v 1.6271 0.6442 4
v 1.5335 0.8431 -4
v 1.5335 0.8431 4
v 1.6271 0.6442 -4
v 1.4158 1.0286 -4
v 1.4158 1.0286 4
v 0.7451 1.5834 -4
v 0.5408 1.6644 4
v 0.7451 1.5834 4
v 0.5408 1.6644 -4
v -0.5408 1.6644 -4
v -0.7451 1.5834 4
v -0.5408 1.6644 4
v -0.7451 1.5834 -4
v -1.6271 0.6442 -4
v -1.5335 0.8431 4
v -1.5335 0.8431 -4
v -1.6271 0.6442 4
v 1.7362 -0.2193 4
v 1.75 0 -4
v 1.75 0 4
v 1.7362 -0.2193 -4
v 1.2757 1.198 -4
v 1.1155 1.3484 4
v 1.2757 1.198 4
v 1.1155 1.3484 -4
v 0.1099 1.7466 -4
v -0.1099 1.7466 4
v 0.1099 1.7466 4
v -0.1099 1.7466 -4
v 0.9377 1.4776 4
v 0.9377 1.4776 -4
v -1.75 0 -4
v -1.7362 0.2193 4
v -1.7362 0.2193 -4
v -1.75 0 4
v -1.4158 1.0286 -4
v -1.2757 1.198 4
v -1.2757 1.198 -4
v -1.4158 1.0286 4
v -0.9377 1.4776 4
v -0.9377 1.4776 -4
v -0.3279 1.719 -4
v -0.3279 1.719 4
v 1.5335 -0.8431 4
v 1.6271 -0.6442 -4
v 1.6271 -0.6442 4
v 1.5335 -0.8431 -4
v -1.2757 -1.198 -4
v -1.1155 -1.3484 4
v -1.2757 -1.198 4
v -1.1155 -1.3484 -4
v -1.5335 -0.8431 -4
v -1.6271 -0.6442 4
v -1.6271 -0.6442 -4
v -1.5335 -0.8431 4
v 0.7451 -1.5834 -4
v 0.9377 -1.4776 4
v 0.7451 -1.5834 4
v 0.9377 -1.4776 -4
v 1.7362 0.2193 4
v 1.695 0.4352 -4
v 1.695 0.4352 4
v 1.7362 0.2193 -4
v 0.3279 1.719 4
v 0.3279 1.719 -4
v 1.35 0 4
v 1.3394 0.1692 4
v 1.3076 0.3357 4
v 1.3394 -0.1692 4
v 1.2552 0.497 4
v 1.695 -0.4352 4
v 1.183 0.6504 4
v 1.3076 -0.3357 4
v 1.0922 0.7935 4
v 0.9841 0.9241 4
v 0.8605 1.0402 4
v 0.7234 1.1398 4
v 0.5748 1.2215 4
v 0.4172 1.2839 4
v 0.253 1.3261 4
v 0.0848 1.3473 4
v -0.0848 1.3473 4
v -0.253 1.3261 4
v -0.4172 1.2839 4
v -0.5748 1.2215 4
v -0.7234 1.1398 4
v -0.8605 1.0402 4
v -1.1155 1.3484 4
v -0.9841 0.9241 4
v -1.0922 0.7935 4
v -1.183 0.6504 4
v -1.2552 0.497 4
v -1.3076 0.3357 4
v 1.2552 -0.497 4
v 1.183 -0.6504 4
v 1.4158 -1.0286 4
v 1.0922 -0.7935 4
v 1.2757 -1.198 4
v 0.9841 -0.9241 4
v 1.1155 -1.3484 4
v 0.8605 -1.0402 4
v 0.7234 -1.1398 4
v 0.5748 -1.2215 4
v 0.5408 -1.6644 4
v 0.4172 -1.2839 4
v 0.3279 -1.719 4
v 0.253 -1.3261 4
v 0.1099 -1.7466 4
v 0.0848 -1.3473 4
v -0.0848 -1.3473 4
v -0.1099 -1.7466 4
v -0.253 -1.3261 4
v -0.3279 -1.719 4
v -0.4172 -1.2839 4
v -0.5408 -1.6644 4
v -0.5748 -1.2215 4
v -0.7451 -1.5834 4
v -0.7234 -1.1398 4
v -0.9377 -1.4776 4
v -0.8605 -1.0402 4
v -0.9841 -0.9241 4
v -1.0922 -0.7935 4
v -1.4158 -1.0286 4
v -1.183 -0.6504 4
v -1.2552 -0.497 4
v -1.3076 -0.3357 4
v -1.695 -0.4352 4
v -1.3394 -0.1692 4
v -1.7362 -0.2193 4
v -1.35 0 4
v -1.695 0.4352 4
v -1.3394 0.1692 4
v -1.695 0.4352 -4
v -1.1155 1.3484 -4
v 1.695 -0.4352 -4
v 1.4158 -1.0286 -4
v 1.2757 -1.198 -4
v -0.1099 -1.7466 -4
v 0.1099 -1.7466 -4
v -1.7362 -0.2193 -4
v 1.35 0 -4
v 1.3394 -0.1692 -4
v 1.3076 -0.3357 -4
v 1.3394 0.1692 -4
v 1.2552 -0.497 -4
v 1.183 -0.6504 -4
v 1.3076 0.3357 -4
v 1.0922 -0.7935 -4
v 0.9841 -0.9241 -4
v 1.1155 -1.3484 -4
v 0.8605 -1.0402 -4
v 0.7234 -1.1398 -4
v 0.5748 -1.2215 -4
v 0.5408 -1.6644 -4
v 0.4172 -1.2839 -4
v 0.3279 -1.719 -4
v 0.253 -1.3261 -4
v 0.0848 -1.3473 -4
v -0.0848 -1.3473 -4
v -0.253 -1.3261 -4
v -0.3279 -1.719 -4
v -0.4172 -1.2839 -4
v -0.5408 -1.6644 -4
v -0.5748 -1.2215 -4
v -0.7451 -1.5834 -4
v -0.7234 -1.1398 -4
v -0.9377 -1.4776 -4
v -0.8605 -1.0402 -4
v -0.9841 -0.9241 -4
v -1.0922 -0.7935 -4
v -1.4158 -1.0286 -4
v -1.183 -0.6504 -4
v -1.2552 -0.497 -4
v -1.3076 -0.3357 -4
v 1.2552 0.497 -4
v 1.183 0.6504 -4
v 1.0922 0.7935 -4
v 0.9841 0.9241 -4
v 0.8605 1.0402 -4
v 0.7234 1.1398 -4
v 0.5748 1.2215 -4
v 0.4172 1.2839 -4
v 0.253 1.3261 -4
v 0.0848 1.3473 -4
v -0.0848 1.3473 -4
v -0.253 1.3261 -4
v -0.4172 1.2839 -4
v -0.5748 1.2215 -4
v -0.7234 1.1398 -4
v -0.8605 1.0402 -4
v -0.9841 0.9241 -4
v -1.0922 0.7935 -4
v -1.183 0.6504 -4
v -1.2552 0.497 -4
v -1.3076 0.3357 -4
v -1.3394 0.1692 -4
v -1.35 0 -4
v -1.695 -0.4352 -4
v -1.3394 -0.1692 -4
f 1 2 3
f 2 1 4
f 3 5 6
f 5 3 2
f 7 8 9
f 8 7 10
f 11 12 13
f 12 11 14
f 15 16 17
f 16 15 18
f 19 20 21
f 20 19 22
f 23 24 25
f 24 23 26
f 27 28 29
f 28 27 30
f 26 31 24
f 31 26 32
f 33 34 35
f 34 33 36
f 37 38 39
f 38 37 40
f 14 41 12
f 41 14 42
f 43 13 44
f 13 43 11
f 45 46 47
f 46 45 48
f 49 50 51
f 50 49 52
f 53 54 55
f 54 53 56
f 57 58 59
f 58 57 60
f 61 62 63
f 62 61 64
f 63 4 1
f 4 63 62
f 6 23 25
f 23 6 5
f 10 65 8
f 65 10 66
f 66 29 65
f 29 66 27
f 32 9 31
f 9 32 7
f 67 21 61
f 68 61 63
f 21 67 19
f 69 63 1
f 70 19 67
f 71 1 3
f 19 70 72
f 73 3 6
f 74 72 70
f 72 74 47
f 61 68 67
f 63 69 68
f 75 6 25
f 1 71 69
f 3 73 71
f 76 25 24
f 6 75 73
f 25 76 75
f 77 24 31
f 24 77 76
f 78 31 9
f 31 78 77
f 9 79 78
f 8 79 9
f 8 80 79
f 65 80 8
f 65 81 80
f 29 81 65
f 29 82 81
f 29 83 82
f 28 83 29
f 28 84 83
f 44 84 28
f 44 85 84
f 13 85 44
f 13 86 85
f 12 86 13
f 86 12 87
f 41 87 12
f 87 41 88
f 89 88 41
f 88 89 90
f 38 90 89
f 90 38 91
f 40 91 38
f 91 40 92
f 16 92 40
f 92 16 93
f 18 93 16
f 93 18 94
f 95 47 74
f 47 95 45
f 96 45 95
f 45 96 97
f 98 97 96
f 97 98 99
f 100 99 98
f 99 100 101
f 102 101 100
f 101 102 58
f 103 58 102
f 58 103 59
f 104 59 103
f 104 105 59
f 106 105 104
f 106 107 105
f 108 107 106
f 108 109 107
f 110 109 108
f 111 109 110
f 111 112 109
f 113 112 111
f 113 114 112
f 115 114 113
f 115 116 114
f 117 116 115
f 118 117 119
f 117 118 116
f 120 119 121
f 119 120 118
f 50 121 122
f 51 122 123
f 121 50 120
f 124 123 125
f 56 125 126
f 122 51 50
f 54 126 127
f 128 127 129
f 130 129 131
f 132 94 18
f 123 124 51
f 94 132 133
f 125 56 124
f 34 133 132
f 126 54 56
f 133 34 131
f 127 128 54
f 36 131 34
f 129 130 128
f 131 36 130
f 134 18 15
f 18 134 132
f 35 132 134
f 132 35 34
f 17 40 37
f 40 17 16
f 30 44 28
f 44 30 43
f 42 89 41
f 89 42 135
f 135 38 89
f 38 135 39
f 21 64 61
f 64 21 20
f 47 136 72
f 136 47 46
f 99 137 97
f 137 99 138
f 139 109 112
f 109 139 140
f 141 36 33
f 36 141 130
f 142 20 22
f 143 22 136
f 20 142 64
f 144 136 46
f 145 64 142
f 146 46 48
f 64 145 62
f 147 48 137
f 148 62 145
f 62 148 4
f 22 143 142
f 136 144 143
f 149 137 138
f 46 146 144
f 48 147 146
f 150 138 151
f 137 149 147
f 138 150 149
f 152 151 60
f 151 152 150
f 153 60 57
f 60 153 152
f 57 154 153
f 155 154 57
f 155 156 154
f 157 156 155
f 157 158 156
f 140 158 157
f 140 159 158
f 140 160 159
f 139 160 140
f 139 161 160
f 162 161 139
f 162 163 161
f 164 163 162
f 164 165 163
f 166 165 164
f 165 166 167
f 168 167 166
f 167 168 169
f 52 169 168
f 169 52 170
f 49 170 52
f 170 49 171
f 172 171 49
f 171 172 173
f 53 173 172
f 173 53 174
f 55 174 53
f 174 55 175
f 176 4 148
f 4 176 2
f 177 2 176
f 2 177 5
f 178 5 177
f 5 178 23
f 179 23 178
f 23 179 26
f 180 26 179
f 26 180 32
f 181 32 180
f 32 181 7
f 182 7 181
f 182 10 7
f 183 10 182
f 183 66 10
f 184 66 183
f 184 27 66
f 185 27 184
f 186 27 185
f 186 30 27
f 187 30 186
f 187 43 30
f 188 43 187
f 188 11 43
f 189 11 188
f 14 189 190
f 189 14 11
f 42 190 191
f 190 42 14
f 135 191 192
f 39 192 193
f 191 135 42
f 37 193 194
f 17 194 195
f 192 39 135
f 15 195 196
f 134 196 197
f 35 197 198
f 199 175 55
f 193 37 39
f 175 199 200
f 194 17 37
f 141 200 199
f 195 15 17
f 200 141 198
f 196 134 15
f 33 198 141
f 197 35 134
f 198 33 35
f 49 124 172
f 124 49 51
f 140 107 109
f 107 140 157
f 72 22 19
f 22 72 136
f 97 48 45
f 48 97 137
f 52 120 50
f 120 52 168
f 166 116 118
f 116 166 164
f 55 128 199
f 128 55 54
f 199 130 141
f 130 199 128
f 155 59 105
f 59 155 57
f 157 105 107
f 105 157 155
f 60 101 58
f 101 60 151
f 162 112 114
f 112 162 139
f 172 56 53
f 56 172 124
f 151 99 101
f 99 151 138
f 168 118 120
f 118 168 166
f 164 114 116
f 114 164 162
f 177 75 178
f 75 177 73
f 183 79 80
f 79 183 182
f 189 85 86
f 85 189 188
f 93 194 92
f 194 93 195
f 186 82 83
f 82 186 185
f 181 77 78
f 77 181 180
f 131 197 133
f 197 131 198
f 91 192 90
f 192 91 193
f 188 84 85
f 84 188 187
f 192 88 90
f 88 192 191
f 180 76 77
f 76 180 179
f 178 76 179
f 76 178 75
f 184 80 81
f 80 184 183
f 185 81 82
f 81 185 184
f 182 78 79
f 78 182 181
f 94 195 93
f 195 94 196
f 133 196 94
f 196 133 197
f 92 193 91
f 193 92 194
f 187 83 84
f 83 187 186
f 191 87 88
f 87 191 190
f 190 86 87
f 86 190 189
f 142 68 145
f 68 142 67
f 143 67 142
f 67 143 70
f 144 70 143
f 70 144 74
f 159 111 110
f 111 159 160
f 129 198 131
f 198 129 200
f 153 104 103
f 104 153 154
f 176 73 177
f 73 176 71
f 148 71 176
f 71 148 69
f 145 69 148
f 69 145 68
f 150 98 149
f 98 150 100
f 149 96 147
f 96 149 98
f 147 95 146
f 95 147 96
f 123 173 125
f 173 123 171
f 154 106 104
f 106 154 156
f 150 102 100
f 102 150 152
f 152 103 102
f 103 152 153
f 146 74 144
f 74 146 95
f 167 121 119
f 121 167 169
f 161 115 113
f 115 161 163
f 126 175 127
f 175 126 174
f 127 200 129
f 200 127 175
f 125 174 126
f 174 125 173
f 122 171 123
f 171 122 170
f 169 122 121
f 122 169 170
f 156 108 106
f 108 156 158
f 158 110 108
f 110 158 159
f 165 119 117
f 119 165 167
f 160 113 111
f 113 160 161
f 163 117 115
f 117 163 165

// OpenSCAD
$fn = 50;


difference() {
	union() {
		translate(v = [0, 0, -4.0000000000]) {
			cylinder(h = 8, r = 1.7500000000);
		}
	}
	union() {
		translate(v = [0, 0, -100.0000000000]) {
			cylinder(h = 200, r = 1.3500000000);
		}
	}
}
